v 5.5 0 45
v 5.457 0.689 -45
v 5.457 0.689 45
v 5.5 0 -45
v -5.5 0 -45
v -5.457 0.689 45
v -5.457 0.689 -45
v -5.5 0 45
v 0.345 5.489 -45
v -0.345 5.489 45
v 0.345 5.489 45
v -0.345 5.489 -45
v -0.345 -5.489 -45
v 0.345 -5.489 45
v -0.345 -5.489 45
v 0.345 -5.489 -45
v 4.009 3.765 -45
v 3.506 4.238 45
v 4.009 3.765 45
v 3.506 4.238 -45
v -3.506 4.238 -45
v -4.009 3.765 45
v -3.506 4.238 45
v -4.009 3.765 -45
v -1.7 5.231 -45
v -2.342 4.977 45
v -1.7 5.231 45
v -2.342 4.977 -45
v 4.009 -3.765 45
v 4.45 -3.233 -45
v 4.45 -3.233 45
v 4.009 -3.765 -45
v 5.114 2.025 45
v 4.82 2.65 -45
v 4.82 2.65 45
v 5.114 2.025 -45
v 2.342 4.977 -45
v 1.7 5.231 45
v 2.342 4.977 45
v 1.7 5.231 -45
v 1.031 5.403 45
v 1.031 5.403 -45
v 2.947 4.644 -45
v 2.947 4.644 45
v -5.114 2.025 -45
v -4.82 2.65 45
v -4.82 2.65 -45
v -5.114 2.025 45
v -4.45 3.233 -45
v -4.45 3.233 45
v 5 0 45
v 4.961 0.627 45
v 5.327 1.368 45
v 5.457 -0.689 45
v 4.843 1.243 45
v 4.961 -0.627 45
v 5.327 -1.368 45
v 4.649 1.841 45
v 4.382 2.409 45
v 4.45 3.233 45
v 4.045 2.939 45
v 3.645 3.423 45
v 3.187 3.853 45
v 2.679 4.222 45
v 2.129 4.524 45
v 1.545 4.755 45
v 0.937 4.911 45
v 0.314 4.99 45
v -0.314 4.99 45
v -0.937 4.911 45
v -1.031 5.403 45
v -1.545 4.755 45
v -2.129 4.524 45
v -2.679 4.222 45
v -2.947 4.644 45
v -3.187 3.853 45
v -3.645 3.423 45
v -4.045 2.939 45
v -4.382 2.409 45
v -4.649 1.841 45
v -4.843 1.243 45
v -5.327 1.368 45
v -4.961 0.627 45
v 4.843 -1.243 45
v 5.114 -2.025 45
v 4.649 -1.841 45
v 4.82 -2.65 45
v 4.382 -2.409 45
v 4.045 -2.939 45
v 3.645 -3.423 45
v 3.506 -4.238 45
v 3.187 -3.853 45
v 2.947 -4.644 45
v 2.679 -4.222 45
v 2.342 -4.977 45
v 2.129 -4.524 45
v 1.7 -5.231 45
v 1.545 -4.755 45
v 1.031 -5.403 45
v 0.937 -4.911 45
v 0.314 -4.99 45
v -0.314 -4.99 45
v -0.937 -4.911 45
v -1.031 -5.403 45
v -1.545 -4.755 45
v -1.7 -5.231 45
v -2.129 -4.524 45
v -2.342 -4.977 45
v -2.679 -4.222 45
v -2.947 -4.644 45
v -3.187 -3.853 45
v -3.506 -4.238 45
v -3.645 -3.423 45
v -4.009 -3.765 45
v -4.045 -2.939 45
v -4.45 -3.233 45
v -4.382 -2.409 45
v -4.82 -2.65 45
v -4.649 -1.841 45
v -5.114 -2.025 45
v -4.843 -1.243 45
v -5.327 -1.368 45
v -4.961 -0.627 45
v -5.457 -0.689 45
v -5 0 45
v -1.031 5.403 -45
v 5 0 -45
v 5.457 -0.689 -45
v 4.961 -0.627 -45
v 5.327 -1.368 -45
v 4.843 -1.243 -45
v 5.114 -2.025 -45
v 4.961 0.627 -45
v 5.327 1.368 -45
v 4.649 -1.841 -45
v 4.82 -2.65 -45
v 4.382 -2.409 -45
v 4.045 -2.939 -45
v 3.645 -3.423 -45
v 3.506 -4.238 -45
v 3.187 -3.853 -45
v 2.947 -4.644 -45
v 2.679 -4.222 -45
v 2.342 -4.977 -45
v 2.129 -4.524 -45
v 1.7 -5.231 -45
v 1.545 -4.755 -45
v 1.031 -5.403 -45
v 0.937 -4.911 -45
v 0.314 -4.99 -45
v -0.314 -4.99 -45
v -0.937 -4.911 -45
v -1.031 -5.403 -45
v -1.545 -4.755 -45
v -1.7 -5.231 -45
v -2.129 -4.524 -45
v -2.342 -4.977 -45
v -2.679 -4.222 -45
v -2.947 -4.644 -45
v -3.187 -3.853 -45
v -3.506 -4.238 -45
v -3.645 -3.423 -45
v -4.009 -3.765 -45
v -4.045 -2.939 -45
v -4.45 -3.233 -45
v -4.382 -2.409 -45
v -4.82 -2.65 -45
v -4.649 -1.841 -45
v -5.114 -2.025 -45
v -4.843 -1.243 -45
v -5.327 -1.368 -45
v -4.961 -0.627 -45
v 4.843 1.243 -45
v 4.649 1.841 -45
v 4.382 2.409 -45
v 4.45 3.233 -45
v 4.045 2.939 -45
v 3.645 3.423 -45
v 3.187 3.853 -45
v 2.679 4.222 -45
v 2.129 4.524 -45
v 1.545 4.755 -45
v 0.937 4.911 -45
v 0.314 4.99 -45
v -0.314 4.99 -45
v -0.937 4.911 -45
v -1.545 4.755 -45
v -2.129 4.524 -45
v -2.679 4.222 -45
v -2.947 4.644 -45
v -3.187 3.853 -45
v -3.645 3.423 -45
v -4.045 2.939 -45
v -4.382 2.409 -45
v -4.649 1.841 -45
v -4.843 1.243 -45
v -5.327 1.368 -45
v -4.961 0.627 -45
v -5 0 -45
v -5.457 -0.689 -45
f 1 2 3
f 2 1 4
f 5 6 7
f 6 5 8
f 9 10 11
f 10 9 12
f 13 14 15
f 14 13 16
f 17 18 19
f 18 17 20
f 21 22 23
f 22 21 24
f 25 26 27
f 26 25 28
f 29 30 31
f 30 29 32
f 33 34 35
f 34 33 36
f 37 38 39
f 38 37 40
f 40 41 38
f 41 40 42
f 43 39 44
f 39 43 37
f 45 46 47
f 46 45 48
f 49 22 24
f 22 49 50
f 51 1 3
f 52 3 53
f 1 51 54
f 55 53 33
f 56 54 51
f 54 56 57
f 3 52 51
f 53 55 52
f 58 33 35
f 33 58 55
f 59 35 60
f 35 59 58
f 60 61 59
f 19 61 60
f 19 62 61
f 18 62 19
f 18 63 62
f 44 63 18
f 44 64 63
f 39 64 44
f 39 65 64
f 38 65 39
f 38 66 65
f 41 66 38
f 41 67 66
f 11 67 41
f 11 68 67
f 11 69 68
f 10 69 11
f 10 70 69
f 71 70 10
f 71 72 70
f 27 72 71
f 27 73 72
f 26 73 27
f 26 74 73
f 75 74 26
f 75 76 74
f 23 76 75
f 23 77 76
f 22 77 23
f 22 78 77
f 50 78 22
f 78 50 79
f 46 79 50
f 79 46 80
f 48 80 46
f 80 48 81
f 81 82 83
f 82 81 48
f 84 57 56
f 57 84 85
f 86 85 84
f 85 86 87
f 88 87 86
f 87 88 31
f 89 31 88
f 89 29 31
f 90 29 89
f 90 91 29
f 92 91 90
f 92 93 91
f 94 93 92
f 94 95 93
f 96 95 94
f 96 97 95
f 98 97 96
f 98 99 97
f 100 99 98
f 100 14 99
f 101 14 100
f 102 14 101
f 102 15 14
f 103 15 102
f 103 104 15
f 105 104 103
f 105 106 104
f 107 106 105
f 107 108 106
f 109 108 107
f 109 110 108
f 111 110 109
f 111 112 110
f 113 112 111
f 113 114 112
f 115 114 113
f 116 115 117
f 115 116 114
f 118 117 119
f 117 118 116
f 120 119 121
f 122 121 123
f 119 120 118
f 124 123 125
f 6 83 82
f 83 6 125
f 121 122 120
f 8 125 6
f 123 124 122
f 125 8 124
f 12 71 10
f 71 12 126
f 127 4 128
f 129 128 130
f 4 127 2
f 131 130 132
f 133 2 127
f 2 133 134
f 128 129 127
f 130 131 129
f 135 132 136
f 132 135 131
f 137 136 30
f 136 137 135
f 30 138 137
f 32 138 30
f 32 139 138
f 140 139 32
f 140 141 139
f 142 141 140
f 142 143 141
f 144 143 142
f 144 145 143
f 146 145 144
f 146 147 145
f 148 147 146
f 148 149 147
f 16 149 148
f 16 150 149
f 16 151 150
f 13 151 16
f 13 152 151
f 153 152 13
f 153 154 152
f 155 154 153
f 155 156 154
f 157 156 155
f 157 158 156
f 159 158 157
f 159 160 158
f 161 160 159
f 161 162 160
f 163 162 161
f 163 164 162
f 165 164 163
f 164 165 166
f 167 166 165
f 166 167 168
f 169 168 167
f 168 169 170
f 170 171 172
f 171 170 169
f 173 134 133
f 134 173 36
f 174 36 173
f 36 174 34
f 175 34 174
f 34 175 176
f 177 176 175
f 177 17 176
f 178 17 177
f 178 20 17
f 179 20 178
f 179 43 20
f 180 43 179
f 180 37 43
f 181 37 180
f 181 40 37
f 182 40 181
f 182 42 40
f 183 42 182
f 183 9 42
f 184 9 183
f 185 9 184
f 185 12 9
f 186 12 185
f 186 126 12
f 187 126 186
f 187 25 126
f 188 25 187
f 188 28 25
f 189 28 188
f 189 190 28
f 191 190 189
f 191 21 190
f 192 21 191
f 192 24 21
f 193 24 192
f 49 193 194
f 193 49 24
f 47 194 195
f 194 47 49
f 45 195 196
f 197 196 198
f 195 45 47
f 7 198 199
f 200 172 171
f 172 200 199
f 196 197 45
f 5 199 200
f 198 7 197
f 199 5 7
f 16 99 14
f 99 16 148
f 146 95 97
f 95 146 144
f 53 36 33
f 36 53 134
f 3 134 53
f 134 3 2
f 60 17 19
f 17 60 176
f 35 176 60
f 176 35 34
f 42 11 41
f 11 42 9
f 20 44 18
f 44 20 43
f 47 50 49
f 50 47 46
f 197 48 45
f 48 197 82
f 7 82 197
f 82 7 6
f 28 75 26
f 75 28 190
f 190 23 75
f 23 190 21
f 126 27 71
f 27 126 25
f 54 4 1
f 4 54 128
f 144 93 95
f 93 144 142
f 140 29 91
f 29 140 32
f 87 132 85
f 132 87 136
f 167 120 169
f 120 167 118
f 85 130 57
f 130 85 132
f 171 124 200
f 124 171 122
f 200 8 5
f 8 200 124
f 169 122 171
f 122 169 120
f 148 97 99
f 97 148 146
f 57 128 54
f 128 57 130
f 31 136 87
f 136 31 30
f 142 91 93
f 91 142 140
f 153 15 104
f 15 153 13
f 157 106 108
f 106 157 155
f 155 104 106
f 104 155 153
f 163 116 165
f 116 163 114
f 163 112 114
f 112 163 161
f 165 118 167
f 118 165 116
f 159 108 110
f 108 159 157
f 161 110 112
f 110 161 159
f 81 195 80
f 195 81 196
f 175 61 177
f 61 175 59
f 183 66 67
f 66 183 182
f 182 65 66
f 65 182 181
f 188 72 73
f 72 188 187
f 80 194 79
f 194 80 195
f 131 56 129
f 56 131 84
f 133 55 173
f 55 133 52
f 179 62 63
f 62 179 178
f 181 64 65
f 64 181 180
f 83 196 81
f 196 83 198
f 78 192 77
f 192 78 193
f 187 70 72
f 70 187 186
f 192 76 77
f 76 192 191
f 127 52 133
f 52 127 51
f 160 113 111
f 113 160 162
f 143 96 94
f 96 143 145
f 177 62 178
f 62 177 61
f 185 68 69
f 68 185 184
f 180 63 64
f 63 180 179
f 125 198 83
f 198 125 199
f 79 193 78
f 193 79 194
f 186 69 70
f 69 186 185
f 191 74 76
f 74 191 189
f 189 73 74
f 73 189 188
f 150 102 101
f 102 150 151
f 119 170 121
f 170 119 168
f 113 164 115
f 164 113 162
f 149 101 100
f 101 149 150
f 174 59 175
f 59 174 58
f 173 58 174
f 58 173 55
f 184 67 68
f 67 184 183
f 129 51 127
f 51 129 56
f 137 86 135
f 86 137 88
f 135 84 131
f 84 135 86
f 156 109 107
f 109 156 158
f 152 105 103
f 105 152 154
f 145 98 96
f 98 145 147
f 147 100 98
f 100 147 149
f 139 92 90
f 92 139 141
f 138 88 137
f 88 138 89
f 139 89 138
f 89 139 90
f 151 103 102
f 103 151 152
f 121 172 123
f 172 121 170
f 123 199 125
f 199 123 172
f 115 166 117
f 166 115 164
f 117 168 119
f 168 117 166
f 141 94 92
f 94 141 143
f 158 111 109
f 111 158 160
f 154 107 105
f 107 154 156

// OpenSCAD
$fn = 50;


difference() {
	union() {
		translate(v = [0, 0, -45.0000000000]) {
			cylinder(h = 90, r = 5.5000000000);
		}
	}
	union() {
		translate(v = [0, 0, -100.0000000000]) {
			cylinder(h = 200, r = 5.0000000000);
		}
	}
}
